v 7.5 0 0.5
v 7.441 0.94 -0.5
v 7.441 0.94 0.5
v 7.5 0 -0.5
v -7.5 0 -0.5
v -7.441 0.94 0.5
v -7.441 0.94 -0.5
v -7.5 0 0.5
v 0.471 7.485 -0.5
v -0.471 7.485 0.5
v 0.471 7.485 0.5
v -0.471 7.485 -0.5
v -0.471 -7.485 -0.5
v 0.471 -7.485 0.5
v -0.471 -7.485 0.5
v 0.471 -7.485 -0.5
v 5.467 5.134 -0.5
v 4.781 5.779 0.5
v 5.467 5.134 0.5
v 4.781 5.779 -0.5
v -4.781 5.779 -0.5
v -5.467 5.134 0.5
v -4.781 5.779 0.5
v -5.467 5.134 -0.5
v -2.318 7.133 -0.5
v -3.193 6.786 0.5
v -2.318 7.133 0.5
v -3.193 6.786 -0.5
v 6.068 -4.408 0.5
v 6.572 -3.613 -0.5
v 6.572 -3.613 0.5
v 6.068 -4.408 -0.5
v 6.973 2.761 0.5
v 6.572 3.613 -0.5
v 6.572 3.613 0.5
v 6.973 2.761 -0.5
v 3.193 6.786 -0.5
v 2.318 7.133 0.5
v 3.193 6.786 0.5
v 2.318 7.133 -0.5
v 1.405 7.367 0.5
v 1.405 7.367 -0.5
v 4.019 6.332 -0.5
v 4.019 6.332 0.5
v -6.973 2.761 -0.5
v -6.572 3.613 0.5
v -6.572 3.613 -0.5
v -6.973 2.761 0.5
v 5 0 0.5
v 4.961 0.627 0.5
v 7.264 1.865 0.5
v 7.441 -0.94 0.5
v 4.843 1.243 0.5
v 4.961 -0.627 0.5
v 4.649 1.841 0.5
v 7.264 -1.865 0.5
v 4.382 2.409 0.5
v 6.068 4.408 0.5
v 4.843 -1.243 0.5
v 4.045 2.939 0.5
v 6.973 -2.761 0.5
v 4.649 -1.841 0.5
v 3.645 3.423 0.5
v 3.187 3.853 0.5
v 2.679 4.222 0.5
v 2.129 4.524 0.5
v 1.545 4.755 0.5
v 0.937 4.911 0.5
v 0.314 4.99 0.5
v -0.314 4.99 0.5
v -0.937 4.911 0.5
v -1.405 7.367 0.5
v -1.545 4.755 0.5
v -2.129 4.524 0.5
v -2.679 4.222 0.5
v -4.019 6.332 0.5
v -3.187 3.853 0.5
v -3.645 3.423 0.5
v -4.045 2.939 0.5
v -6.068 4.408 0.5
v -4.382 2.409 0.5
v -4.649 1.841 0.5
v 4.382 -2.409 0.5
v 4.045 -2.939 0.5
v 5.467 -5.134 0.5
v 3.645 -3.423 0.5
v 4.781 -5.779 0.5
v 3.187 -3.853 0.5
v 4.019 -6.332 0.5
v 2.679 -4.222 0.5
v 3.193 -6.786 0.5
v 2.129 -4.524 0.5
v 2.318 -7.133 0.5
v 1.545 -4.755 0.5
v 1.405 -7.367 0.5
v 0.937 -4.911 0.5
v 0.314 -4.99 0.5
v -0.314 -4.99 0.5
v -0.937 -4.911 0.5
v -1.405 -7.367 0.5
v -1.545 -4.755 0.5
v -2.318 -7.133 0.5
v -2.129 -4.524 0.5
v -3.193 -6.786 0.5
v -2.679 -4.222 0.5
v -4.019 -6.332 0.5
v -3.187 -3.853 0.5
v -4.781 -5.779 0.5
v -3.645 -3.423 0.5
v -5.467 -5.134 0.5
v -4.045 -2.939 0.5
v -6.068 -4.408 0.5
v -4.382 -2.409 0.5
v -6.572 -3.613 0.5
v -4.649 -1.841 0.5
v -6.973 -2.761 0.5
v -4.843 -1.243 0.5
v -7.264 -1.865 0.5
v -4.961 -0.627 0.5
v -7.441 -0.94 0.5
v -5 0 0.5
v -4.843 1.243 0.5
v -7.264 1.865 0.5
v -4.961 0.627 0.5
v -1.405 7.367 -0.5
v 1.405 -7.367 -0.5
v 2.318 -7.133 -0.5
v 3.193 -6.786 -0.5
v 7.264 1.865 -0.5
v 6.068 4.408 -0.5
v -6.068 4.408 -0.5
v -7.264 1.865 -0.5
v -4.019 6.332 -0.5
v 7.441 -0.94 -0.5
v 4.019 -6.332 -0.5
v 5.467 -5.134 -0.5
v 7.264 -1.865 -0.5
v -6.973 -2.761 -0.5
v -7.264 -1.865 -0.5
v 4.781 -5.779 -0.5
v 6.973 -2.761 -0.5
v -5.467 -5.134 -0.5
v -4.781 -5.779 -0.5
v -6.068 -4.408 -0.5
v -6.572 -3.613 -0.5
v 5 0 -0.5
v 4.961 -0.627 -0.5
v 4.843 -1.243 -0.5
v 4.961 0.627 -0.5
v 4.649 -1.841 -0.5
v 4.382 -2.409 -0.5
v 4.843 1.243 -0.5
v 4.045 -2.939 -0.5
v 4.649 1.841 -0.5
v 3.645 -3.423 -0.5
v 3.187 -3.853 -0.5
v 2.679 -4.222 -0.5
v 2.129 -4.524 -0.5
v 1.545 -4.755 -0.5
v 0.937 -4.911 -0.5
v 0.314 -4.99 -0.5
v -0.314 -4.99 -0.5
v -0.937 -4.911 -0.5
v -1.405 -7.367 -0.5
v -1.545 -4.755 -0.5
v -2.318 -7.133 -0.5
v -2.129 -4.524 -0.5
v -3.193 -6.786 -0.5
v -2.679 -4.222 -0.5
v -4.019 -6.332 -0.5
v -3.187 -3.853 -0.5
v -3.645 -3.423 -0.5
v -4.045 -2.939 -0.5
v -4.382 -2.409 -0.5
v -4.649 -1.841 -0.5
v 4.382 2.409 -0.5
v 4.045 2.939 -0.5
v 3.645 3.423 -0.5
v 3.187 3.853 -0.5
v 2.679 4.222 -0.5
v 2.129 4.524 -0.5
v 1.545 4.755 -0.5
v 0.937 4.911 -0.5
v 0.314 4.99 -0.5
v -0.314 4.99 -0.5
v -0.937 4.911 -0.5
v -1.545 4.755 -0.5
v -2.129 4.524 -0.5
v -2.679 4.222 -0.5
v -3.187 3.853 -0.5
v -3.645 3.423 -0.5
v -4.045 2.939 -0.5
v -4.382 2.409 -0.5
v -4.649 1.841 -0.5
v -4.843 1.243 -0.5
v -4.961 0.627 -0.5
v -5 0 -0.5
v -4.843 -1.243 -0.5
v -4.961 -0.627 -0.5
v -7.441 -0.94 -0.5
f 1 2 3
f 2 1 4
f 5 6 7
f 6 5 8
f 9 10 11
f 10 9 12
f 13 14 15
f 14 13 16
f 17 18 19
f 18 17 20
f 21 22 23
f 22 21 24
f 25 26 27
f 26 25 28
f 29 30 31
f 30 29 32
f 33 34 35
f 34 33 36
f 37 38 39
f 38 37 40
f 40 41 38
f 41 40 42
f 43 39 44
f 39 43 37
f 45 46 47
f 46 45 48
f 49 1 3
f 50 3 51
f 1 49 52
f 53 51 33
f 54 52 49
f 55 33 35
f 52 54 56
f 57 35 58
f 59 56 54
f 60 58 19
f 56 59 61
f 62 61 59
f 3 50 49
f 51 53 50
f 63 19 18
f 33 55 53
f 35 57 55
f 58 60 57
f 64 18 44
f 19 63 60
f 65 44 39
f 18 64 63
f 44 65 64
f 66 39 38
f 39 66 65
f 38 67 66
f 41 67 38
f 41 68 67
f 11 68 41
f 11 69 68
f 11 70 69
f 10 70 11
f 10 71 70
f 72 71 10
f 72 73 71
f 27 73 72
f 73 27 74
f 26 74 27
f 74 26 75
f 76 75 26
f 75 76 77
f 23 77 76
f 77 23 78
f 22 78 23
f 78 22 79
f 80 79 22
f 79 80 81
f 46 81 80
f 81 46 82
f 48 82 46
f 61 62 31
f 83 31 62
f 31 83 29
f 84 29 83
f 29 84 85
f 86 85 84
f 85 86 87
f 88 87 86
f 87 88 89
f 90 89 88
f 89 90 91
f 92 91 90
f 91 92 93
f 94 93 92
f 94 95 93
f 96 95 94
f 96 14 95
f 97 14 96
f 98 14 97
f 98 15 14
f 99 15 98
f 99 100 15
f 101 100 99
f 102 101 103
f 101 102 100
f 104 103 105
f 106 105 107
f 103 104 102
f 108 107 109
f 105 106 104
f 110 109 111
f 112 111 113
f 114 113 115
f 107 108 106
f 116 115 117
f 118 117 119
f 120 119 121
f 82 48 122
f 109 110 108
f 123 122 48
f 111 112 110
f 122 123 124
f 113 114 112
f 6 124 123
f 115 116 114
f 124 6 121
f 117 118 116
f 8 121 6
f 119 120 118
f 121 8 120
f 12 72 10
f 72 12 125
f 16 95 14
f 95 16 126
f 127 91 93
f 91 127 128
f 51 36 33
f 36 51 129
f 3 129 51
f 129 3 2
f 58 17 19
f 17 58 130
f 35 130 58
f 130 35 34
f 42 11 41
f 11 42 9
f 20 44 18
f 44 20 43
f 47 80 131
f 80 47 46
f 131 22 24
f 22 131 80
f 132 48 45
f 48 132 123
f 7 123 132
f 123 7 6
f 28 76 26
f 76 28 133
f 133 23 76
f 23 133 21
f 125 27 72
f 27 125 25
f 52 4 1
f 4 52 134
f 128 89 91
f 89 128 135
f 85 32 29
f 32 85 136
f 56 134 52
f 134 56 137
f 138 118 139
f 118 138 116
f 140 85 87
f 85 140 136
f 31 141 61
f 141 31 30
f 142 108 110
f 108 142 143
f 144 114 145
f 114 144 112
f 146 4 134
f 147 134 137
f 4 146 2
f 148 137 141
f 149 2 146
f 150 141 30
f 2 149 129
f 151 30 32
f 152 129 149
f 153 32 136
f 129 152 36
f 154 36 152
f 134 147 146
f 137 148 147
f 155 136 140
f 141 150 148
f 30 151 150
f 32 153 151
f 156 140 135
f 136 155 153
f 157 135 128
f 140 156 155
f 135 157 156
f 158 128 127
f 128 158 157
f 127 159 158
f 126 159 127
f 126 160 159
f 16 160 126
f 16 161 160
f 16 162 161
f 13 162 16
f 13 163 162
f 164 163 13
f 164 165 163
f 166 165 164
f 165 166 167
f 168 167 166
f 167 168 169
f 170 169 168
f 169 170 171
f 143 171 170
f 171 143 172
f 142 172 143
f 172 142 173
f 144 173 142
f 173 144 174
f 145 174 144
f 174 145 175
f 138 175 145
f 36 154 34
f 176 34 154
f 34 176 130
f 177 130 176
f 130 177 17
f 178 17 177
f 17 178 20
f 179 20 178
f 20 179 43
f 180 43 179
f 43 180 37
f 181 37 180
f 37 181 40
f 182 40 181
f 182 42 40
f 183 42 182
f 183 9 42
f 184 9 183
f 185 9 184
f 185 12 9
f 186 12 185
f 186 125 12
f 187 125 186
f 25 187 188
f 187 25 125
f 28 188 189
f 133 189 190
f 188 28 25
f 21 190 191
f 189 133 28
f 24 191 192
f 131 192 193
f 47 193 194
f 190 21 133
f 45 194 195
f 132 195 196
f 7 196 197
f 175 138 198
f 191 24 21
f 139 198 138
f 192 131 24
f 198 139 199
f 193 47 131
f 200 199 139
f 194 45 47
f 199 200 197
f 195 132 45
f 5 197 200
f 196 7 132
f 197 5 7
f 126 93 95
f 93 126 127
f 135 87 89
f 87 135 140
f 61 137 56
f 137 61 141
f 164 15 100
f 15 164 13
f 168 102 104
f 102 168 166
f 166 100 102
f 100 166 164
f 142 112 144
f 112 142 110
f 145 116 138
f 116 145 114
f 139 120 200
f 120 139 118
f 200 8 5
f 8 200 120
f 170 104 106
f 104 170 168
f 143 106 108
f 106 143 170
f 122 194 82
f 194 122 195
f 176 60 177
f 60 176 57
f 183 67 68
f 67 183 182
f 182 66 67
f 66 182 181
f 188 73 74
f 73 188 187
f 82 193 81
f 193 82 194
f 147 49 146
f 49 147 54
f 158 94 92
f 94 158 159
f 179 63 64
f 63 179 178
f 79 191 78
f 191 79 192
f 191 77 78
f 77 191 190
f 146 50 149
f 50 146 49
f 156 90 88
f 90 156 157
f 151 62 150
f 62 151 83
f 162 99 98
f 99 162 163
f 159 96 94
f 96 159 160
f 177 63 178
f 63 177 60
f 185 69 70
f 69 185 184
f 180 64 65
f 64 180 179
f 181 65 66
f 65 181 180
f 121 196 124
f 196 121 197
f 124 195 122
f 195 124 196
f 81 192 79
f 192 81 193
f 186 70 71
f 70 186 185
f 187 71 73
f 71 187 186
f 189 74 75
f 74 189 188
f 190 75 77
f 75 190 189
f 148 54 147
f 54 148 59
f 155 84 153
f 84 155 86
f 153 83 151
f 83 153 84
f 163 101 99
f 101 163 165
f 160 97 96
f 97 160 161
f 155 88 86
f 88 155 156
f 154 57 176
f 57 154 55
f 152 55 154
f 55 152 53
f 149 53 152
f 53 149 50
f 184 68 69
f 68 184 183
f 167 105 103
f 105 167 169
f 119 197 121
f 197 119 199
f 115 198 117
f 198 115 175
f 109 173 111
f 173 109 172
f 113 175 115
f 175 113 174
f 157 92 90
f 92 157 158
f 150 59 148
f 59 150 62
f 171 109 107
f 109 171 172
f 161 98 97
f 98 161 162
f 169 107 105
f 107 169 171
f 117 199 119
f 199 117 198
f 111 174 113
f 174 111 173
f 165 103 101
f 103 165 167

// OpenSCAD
$fn = 50;


difference() {
	union() {
		translate(v = [0, 0, -0.5000000000]) {
			cylinder(h = 1, r = 7.5000000000);
		}
	}
	union() {
		translate(v = [0, 0, -100.0000000000]) {
			cylinder(h = 200, r = 5.0000000000);
		}
	}
}
